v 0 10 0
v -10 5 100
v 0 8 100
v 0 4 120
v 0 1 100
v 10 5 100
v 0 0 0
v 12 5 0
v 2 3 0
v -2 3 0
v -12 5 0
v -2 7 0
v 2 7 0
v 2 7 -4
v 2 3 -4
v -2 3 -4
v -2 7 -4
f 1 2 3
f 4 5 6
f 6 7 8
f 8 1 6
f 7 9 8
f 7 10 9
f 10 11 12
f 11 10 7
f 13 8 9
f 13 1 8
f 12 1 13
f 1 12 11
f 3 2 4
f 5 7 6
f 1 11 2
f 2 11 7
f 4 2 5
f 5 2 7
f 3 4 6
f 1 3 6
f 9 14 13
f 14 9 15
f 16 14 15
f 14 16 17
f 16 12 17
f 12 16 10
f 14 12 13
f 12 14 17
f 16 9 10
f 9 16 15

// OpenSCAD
$fn=50;


//dagger
polyhedron(
    points = [[0, 0, 0], [12, 5, 0], [0, 10, 0], [-12, 5, 0],
        [0, 1, 100], [10, 5, 100], [0, 8, 100], [-10, 5, 100], [0, 4, 120]],
    faces = [[0, 1, 2, 3], [1, 0, 4, 5], [2, 1, 5, 6], [3, 2, 6, 7], [0, 3, 7, 4],
    [5, 4, 8], [6, 5, 8], [7, 6, 8], [4, 7, 8]]);
//dagger connector
translate([-2, 3, -4]) cube([4, 4, 4]);
